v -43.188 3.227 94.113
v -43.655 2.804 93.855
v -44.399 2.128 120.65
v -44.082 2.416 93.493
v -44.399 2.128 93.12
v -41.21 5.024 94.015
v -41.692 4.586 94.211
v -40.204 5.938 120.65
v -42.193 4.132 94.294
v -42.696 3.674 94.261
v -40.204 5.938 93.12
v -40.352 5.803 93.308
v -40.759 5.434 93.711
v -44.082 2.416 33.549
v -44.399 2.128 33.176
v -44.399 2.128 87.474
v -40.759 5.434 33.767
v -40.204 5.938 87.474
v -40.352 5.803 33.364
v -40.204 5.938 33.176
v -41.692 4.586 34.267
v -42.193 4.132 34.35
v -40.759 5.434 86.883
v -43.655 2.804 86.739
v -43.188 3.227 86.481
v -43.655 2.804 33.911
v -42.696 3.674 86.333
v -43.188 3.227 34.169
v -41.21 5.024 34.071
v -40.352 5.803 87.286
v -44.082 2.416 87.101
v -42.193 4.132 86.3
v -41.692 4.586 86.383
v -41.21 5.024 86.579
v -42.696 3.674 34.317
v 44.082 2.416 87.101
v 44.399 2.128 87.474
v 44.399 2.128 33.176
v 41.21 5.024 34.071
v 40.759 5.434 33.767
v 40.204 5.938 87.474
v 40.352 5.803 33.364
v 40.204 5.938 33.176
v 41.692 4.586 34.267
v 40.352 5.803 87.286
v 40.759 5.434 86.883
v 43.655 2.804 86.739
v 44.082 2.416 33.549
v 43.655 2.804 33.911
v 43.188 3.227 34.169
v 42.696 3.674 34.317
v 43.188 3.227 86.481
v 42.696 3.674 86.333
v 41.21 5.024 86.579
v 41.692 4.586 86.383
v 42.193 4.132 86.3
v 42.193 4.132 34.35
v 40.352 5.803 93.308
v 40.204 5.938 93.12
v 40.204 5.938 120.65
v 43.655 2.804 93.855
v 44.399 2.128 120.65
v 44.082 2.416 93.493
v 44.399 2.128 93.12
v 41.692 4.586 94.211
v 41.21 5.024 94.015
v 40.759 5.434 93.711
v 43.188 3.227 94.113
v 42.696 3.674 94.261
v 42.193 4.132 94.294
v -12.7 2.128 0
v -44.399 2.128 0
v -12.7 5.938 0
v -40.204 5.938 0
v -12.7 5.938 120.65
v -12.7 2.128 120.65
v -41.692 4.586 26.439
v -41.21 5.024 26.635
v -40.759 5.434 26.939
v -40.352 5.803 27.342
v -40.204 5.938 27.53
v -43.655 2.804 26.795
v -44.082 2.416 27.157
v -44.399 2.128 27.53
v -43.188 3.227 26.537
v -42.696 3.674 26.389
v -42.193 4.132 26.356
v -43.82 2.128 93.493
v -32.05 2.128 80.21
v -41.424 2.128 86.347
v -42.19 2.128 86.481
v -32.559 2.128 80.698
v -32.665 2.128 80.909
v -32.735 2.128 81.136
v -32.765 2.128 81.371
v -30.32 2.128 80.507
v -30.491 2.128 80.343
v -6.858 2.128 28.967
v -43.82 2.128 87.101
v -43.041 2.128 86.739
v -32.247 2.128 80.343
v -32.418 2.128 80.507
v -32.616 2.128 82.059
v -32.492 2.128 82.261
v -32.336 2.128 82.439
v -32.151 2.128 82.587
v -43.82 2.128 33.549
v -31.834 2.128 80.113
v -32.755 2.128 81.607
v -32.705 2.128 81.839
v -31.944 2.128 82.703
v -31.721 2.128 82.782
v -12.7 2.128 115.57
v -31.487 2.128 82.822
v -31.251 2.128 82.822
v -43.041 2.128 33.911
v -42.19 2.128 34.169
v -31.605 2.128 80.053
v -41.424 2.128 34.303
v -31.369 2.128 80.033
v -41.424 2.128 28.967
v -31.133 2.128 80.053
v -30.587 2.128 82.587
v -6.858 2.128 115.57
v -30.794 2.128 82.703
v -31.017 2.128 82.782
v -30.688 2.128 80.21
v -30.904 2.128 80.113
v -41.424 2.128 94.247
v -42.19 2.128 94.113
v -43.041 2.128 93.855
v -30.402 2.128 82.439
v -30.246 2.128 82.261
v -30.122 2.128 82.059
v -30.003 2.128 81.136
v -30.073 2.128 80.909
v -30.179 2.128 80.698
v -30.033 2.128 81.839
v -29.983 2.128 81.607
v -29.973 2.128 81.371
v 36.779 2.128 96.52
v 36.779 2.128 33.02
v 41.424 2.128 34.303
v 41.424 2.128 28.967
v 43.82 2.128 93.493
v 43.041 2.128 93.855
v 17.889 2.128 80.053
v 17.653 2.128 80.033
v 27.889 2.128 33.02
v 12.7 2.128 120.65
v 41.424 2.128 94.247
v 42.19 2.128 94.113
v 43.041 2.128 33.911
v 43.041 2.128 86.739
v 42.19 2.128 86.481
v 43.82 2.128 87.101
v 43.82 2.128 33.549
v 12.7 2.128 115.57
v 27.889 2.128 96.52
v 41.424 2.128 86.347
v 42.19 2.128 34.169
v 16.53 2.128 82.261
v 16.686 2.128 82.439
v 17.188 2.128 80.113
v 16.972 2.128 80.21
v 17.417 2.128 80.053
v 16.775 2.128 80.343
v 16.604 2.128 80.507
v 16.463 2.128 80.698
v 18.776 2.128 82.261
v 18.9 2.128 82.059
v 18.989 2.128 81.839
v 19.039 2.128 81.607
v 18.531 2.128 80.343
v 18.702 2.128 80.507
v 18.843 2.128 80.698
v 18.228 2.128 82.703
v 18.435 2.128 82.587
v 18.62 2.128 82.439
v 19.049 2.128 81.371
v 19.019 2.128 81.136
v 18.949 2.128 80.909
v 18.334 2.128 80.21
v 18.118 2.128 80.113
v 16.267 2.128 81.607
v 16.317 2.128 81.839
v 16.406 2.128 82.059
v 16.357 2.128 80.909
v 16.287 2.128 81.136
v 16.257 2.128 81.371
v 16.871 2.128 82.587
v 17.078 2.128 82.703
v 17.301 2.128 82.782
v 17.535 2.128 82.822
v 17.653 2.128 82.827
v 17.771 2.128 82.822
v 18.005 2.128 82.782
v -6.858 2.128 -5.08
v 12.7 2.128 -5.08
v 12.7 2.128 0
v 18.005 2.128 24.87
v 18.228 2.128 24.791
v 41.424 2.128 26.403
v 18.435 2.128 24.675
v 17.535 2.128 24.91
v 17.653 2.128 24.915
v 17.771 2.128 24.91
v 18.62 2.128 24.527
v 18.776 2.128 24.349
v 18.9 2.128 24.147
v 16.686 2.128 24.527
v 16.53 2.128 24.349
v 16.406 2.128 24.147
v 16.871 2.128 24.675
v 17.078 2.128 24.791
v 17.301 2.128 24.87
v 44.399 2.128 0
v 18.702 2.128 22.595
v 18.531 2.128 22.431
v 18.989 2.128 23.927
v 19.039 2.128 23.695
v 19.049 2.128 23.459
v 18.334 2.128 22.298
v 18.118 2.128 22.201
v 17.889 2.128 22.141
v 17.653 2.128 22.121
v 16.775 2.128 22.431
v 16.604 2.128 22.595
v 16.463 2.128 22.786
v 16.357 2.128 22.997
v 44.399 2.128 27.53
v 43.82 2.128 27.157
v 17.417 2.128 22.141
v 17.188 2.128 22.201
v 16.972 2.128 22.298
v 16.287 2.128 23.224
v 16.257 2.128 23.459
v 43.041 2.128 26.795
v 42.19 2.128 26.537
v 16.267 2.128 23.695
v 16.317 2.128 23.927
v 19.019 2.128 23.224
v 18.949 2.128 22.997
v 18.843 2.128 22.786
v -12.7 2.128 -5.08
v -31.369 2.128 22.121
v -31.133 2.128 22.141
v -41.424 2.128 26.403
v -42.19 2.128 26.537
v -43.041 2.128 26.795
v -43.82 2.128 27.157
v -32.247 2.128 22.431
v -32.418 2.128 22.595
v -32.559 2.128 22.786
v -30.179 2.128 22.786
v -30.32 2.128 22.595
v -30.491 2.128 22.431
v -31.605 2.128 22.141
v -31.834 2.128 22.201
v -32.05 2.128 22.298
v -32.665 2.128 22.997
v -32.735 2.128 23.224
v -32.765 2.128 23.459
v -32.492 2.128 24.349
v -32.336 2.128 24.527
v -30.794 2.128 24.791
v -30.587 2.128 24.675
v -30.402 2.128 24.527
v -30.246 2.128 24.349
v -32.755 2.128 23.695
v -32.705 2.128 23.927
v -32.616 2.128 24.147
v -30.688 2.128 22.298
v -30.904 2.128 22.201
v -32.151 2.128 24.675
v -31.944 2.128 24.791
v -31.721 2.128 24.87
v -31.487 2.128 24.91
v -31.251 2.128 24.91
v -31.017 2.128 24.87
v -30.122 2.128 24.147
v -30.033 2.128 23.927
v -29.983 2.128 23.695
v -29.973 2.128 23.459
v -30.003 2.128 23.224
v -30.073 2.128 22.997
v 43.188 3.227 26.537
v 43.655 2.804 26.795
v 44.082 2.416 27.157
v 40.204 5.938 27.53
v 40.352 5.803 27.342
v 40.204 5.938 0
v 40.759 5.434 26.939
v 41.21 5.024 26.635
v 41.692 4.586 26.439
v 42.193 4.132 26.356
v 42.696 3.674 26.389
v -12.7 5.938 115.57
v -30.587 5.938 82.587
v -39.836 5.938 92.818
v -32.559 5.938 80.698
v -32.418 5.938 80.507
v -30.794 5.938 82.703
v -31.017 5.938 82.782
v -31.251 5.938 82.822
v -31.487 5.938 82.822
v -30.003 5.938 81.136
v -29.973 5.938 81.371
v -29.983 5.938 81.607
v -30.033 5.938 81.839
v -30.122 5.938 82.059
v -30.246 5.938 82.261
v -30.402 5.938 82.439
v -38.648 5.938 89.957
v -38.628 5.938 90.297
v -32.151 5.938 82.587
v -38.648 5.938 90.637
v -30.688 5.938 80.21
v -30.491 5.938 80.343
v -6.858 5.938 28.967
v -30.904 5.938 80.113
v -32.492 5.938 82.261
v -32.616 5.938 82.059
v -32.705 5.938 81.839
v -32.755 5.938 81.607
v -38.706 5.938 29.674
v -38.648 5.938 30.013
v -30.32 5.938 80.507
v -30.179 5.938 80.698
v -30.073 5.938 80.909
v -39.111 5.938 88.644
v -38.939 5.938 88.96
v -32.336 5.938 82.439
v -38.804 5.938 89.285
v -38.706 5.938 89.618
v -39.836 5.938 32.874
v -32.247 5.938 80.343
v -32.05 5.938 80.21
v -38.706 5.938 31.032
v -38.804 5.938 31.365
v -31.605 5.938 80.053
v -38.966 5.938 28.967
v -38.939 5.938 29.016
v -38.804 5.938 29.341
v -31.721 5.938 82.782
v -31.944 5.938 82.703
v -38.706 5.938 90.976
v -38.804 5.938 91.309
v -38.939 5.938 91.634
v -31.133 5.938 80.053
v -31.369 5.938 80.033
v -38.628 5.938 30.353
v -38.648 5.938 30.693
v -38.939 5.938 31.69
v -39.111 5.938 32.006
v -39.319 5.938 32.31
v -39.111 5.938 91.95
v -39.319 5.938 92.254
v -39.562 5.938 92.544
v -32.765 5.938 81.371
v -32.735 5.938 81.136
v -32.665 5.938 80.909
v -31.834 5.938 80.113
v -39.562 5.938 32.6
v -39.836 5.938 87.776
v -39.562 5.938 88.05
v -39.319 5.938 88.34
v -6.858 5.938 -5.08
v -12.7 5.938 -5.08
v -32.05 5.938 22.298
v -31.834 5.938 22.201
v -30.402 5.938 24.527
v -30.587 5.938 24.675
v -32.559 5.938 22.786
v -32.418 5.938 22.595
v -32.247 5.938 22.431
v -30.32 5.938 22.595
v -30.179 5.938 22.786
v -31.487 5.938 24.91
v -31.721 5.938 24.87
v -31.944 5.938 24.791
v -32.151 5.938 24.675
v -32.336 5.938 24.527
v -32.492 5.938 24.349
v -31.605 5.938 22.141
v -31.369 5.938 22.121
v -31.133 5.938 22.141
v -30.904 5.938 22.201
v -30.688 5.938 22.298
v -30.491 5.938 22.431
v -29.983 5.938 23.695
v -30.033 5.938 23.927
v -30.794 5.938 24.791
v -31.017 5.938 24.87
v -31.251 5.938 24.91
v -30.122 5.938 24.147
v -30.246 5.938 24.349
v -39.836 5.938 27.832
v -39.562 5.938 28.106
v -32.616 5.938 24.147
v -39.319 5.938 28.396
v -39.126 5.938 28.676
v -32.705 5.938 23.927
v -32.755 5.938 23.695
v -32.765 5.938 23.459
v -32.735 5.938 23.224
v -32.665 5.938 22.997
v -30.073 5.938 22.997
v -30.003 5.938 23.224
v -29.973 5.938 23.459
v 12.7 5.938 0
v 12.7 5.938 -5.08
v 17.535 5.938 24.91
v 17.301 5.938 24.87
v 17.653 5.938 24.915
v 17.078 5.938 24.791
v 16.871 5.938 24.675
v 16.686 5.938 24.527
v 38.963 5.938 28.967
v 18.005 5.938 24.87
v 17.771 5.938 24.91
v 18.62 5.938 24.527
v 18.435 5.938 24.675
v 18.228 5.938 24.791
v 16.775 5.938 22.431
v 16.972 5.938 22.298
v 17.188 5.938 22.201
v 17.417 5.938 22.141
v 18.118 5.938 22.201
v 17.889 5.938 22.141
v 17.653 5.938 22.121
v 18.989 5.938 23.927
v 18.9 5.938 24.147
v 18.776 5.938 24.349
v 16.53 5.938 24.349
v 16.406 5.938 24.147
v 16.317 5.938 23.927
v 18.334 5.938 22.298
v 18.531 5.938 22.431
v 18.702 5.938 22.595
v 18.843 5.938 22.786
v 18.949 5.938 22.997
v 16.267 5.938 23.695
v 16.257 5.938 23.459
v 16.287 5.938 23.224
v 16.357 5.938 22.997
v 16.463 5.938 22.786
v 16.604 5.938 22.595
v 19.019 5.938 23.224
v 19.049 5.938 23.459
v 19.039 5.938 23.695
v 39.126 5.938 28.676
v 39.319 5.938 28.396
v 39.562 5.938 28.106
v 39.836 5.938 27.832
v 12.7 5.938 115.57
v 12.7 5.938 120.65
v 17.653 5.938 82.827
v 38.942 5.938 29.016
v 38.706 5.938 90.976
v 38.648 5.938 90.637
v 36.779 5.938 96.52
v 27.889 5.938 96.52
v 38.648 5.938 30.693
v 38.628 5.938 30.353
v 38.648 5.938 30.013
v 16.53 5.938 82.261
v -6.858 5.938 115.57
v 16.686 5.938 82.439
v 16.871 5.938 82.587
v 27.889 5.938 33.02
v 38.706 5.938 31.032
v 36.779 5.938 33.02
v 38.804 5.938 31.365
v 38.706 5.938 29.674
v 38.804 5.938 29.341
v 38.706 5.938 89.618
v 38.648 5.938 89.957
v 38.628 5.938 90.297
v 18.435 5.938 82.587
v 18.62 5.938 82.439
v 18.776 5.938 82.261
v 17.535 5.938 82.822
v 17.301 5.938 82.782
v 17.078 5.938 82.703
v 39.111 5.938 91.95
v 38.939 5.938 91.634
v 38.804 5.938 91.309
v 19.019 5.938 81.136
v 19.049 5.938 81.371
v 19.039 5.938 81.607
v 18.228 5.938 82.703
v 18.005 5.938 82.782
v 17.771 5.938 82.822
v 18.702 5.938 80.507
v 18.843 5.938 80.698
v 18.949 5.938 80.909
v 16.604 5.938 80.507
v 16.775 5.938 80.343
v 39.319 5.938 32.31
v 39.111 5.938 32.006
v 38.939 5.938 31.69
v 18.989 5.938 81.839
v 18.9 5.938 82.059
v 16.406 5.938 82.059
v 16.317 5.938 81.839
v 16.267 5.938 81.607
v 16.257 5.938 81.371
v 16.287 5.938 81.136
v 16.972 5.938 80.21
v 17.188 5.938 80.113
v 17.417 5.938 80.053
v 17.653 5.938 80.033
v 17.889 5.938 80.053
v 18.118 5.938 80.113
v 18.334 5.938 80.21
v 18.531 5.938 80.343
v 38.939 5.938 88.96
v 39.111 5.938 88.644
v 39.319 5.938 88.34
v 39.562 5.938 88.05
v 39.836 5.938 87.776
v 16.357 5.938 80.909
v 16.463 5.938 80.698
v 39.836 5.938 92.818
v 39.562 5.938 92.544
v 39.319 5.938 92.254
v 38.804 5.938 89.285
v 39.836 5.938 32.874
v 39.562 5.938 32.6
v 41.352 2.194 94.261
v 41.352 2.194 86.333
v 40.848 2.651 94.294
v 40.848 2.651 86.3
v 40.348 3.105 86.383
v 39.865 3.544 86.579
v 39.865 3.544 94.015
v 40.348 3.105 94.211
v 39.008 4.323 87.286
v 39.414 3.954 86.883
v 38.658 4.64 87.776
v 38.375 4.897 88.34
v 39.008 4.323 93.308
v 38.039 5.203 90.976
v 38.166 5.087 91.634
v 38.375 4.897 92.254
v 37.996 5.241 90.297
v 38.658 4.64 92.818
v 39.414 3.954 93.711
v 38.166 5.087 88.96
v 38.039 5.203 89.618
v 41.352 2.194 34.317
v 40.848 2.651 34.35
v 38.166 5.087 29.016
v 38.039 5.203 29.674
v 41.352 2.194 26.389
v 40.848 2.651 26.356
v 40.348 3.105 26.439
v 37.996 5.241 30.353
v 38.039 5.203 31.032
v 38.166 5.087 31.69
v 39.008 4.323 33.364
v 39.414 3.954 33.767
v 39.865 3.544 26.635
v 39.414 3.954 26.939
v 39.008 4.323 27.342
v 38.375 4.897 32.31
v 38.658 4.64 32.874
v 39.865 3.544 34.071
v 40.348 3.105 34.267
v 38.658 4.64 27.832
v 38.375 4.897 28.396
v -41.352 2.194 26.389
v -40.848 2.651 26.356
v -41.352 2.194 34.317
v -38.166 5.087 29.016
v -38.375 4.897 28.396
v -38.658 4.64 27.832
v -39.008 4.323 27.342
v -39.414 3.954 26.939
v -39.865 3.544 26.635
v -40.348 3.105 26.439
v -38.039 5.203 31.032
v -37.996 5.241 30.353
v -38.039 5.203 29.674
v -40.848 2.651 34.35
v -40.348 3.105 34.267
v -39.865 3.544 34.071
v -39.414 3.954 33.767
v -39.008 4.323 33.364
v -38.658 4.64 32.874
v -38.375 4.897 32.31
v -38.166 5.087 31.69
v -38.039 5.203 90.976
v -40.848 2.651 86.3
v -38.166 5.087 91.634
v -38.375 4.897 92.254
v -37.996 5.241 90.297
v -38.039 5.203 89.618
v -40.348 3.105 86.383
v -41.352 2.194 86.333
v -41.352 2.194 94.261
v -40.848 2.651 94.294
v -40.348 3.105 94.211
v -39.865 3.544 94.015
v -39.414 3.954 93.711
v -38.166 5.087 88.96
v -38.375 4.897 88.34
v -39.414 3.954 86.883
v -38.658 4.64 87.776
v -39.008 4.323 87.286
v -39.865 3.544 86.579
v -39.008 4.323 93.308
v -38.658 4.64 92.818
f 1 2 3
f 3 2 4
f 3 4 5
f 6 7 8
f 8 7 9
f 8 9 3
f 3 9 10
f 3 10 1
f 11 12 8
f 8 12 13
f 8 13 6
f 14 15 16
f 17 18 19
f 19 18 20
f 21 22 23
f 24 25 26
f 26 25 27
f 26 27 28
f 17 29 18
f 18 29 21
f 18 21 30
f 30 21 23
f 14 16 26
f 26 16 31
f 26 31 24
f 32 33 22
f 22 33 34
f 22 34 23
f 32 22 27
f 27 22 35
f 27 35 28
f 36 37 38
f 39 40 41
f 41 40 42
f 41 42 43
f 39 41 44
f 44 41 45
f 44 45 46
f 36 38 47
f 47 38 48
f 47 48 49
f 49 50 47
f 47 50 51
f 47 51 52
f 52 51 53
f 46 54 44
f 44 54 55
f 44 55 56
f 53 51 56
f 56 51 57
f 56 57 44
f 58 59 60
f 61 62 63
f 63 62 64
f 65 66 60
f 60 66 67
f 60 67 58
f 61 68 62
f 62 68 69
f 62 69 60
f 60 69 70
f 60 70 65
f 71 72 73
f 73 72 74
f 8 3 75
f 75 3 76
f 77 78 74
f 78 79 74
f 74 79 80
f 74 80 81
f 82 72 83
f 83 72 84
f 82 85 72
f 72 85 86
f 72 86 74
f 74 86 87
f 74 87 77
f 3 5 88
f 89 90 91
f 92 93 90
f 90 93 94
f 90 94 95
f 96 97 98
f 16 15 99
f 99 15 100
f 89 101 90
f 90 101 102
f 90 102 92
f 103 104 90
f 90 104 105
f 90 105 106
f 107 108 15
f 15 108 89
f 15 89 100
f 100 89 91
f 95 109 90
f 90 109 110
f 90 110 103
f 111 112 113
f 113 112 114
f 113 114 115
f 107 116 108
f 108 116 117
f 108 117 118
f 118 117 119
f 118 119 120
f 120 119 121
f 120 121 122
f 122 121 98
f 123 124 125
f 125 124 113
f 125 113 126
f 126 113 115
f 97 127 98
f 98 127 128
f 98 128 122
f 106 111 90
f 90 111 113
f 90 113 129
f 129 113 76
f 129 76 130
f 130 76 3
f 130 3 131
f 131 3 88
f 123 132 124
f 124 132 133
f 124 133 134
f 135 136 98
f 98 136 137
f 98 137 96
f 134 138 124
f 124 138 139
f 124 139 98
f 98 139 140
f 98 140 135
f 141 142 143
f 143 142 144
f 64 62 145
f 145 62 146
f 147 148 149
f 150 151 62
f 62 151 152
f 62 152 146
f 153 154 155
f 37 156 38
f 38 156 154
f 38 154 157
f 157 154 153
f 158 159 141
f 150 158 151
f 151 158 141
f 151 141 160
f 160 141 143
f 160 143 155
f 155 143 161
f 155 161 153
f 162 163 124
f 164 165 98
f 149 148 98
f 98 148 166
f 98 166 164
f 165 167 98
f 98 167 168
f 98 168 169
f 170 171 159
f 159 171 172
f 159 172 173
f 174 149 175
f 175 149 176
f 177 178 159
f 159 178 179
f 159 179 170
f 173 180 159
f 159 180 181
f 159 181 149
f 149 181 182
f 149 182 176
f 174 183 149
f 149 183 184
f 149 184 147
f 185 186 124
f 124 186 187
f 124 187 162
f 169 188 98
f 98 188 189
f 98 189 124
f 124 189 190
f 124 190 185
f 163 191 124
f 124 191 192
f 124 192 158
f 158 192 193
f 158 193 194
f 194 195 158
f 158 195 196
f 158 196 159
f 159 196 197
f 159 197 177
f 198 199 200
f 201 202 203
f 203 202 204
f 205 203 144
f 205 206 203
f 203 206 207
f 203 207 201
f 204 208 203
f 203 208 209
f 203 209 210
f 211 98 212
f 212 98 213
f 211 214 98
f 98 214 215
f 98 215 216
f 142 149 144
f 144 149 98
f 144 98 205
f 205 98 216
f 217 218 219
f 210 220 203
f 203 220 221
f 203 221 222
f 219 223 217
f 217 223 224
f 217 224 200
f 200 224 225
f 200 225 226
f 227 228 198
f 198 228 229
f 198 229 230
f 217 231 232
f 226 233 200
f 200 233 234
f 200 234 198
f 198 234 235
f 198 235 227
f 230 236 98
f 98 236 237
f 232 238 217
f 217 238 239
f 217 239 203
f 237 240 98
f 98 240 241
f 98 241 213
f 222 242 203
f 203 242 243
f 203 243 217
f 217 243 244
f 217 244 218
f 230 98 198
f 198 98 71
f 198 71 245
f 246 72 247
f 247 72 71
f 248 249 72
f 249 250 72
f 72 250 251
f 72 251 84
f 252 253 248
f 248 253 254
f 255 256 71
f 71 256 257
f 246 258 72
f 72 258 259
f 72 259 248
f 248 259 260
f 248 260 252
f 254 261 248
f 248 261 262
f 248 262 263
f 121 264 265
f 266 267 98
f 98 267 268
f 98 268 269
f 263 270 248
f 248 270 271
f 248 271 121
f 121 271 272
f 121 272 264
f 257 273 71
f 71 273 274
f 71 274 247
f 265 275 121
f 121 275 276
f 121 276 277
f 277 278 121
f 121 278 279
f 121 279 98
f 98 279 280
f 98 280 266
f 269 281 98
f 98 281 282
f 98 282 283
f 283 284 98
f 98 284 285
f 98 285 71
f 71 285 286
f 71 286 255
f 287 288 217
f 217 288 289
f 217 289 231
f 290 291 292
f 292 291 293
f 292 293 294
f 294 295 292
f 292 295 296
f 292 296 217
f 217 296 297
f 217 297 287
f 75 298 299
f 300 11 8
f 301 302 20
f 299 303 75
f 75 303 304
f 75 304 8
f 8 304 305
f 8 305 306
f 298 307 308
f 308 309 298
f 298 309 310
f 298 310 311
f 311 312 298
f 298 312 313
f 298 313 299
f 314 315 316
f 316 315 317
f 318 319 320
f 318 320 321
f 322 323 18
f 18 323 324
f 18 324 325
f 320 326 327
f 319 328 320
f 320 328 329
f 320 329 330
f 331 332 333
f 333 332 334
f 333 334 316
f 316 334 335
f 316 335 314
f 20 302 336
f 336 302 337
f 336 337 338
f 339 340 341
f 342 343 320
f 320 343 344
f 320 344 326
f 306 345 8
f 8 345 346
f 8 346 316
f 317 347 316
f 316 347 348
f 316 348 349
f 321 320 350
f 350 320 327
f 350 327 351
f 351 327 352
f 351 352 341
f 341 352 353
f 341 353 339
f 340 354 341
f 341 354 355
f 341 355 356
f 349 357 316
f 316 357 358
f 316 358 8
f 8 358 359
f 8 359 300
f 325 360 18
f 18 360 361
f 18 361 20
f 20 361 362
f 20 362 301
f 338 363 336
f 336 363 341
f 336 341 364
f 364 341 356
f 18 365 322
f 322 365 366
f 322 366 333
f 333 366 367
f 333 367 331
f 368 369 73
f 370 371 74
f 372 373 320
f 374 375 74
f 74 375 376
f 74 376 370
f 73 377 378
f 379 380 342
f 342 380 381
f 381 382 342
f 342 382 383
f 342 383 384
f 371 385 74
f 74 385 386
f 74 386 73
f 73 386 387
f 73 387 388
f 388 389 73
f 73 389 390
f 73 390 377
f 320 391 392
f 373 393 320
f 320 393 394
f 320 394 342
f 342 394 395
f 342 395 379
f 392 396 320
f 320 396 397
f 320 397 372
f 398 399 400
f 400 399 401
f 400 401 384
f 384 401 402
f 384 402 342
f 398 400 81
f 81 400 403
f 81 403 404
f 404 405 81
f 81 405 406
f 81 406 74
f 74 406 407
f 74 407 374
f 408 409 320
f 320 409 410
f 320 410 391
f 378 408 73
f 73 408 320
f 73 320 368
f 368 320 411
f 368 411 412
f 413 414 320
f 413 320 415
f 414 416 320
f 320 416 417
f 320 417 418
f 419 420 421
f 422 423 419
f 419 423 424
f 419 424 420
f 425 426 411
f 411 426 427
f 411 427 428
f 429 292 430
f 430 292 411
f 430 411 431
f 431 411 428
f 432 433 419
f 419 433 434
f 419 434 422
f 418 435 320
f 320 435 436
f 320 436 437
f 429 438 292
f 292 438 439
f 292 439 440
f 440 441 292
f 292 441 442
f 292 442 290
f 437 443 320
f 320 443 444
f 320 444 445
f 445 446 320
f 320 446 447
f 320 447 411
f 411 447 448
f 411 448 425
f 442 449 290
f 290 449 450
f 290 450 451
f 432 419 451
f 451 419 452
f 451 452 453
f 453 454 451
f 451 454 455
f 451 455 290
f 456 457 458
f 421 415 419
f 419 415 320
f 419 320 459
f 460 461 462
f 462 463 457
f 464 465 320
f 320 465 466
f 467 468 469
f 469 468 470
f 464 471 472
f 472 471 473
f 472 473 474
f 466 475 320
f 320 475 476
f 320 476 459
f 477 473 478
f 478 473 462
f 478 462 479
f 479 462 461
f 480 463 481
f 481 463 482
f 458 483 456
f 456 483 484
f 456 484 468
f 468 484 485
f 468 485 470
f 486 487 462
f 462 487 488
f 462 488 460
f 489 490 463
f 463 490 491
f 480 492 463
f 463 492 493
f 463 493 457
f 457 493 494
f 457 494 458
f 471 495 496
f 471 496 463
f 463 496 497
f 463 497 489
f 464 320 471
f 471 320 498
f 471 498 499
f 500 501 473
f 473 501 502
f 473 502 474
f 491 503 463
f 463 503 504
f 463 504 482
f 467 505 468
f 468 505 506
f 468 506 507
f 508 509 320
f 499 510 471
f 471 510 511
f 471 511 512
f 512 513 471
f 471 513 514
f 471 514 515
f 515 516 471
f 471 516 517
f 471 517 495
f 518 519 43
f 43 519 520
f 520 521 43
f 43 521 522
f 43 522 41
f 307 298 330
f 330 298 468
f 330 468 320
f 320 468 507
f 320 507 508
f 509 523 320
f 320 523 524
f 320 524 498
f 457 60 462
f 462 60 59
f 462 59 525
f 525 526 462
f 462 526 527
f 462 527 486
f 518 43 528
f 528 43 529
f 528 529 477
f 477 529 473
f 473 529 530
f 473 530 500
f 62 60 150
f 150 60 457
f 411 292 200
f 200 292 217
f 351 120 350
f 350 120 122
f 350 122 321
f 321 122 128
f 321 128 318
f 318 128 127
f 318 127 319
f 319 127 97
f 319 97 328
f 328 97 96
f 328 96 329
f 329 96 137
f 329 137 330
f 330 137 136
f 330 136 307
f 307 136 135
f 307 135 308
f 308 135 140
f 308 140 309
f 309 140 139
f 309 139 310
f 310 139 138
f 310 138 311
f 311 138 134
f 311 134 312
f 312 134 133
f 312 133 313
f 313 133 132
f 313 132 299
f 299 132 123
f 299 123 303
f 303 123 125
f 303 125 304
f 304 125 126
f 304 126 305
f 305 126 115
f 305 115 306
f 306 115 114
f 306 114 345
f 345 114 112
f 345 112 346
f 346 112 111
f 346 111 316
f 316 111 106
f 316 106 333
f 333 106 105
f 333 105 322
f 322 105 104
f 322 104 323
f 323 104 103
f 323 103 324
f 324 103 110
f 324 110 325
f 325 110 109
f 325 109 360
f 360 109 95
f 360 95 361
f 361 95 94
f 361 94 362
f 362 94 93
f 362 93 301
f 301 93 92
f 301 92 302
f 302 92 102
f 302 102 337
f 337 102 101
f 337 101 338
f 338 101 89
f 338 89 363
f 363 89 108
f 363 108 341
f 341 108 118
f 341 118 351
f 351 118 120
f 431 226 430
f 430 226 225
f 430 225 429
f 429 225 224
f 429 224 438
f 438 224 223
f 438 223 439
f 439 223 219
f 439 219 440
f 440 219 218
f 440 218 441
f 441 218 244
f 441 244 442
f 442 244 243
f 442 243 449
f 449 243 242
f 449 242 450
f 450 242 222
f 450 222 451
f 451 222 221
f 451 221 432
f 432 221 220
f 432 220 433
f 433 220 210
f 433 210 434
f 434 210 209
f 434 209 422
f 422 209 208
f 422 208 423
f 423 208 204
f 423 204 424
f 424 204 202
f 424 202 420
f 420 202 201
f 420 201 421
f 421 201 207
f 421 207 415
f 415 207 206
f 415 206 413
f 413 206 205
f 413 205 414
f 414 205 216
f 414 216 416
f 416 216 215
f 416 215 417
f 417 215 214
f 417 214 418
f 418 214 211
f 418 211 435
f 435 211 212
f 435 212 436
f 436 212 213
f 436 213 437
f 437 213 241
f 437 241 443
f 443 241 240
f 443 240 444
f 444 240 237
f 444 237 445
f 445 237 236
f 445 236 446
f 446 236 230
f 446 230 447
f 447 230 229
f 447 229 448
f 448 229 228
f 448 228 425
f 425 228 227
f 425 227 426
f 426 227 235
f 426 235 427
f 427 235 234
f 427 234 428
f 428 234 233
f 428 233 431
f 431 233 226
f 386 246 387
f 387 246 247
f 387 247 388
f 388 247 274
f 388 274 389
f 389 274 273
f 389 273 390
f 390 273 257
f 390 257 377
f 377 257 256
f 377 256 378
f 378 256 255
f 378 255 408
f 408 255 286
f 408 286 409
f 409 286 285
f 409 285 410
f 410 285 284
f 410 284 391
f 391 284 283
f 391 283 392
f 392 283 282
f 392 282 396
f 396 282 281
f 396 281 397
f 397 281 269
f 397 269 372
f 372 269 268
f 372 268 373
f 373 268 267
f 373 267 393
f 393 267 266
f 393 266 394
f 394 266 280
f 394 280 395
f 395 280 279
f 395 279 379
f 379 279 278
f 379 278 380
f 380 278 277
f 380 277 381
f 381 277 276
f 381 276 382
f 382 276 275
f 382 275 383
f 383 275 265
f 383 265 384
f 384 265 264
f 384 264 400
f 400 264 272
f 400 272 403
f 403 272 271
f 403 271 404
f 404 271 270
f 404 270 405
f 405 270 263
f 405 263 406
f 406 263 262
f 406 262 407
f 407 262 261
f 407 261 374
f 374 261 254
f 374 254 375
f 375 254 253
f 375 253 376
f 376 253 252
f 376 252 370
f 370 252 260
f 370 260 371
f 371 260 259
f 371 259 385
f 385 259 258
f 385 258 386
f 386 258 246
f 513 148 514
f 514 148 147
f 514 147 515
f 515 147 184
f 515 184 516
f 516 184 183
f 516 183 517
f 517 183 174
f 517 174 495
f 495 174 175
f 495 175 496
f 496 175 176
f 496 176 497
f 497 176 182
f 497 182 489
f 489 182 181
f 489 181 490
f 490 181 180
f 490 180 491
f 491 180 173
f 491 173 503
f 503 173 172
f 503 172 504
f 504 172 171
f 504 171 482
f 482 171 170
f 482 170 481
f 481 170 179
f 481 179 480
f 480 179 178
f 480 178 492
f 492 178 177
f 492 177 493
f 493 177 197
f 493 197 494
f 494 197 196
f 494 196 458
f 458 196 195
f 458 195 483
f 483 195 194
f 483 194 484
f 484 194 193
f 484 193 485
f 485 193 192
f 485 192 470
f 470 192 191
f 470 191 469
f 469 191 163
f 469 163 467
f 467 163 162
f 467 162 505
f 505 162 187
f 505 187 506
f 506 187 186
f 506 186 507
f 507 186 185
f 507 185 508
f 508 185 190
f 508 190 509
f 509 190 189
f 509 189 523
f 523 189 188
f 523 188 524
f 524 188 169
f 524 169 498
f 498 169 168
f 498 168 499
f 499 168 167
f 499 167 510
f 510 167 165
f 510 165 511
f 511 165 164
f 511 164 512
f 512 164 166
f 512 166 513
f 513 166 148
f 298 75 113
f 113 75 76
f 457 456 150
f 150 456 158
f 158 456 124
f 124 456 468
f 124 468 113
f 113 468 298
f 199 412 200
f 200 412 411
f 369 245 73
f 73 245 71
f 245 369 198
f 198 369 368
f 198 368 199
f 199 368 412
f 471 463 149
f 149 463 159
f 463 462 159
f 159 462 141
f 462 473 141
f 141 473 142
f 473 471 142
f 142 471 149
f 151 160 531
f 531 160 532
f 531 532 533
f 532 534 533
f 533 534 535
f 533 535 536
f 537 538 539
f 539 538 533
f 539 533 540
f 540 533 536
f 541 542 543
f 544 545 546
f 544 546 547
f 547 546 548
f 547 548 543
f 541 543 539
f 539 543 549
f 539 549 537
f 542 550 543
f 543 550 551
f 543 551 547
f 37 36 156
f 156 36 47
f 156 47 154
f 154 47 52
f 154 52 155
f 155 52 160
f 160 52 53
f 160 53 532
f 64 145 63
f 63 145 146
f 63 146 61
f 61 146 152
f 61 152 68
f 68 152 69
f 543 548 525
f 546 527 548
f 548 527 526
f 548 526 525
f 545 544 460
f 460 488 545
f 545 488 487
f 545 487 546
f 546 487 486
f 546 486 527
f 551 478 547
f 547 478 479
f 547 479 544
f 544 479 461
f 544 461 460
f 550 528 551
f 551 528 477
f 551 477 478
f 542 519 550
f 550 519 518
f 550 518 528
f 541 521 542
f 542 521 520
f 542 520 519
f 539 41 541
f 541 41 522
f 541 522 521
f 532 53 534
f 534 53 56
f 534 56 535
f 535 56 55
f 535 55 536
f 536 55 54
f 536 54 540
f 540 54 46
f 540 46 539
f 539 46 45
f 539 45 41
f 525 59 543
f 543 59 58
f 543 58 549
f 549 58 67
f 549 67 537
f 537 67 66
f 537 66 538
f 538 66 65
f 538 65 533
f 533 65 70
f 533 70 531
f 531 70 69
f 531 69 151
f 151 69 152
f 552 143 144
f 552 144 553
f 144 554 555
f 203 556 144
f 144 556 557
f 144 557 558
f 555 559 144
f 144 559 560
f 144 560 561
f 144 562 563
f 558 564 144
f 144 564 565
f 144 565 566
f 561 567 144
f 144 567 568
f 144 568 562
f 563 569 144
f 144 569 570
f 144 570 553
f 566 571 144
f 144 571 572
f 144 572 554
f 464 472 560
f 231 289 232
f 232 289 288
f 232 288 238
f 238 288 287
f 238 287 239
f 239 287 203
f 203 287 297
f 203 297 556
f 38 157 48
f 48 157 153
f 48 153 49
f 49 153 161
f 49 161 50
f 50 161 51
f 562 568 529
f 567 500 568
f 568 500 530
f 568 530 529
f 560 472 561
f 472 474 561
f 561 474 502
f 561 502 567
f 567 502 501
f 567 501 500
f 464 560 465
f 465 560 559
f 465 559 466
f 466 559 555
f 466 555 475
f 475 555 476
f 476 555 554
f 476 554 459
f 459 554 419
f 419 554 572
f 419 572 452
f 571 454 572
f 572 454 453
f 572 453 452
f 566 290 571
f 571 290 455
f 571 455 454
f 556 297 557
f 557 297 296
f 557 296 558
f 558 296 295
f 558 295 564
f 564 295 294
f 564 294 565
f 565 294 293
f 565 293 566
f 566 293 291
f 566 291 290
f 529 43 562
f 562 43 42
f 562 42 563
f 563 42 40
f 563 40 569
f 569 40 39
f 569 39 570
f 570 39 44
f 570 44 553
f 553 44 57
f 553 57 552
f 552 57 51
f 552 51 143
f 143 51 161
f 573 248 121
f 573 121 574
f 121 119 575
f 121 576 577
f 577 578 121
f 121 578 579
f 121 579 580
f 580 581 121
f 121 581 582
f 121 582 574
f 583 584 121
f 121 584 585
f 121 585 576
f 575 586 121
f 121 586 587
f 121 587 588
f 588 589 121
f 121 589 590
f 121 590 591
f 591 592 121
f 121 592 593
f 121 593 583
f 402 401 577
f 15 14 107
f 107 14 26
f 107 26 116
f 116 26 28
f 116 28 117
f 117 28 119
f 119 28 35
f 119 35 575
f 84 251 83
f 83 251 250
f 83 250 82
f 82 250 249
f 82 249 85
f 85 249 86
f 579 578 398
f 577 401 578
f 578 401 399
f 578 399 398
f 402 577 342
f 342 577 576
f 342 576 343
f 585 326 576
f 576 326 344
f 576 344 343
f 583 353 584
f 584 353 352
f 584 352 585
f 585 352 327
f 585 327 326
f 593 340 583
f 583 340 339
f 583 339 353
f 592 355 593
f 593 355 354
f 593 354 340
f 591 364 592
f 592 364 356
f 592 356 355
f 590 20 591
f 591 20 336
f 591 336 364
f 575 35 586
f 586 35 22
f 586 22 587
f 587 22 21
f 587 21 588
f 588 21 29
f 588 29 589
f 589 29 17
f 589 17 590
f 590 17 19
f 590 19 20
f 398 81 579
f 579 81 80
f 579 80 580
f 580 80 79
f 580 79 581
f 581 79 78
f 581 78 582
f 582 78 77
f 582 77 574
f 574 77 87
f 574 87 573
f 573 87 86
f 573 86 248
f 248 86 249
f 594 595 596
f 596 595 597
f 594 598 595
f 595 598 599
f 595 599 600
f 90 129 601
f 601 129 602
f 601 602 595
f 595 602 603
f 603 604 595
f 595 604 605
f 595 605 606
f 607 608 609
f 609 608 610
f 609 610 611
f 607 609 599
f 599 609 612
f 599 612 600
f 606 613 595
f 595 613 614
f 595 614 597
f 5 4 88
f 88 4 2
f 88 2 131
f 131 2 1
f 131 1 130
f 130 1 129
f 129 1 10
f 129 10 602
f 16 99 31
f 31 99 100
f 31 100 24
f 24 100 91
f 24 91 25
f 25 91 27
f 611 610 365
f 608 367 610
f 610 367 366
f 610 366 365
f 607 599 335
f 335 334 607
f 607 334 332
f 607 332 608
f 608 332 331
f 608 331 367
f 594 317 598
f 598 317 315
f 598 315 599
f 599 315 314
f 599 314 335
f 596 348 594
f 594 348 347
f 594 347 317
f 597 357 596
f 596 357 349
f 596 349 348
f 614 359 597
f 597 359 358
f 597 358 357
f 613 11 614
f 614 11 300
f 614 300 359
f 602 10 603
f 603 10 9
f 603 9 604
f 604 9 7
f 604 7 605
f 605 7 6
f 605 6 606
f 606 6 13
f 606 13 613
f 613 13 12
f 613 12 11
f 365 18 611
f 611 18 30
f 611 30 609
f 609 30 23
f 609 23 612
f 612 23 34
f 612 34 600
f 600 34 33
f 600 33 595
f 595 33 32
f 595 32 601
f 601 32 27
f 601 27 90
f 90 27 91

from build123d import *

# Parameters (mm, degrees)
BOSS_EXTRUDE1_DEPTH = 120.65
SKETCH2_R           = 1.397
CUT_EXTRUDE1_DEPTH  = 129.616537105
SKETCH3_W           = 25.4
SKETCH3_H           = 5.08
CUT_EXTRUDE2_DEPTH  = 129.616537105
SKETCH5_W           = 25.4
SKETCH5_H           = 10.16
BOSS_EXTRUDE3_DEPTH = 3.81
SKETCH6_W           = 8.89
SKETCH6_H           = 63.5
CUT_EXTRUDE3_DEPTH  = 129.616537105
SKETCH7_R           = 4
CUT_EXTRUDE4_DEPTH  = 2
SKETCH8_R           = 4
CUT_EXTRUDE5_DEPTH  = 2


with BuildPart() as part:
    # Sketch1 → Boss-Extrude1 (new body)
    with BuildSketch(Plane.XY):
        Polygon((-40.203883769, 5.937788296), (40.203883769, 5.937788296), (44.399042974, 2.127788296), (-44.399042974, 2.127788296), align=None)
    extrude(amount=BOSS_EXTRUDE1_DEPTH)

    # Sketch2 → Cut-Extrude1 (cut, through all)
    with BuildSketch(Plane.XZ.offset(-2.127788296)):
        with Locations(Location((-31.369, 81.429995649, 0), (0, 0, 270))):
            Circle(SKETCH2_R)
        with Locations(Location((17.653, 23.517995649, 0), (0, 0, 270))):
            Circle(SKETCH2_R)
        with Locations(Location((-31.369, 23.517995649, 0), (0, 0, 270))):
            Circle(SKETCH2_R)
        with Locations(Location((17.653, 81.429995649, 0), (0, 0, 270))):
            Circle(SKETCH2_R)
    extrude(amount=-CUT_EXTRUDE1_DEPTH, mode=Mode.SUBTRACT)

    # Sketch3 → Cut-Extrude2 (cut, through all)
    with BuildSketch(Plane.XZ.offset(-2.127788296)):
        with Locations((0, 118.11)):
            Rectangle(SKETCH3_W, SKETCH3_H)
        with Locations((0, 2.54)):
            Rectangle(SKETCH3_W, SKETCH3_H)
    extrude(amount=-CUT_EXTRUDE2_DEPTH, mode=Mode.SUBTRACT)

    # Sketch5 → Boss-Extrude3 (add)
    with BuildSketch(Plane.XZ.offset(-2.127788296)):
        Rectangle(SKETCH5_W, SKETCH5_H)
    extrude(amount=-BOSS_EXTRUDE3_DEPTH)

    # Sketch6 → Cut-Extrude3 (cut, through all)
    with BuildSketch(Plane.XZ.offset(-2.127788296)):
        with Locations((32.334042974, 64.77)):
            Rectangle(SKETCH6_W, SKETCH6_H)
    extrude(amount=-CUT_EXTRUDE3_DEPTH, mode=Mode.SUBTRACT)

    # Sketch7 → Cut-Extrude4 (cut)
    with BuildSketch(Plane(origin=(21.127225221, 23.263011377, 0), x_dir=(0.7402720771062566, -0.6723074087475077, 0), z_dir=(0.6723074087475077, 0.7402720771062566, 0))):
        with Locations((28.603318705, -90.297)):
            Circle(SKETCH7_R)
        with Locations((28.603318705, -30.353)):
            Circle(SKETCH7_R)
    extrude(amount=-CUT_EXTRUDE4_DEPTH, mode=Mode.SUBTRACT)

    # Sketch8 → Cut-Extrude5 (cut)
    with BuildSketch(Plane(origin=(-21.127225221, 23.263011377, 0), x_dir=(0.7402720771062566, 0.6723074087475077, 0), z_dir=(-0.6723074087475077, 0.7402720771062566, 0))):
        with Locations((-28.603318705, -30.353)):
            Circle(SKETCH8_R)
        with Locations((-28.603318705, -90.297)):
            Circle(SKETCH8_R)
    extrude(amount=-CUT_EXTRUDE5_DEPTH, mode=Mode.SUBTRACT)


solid = part.part
